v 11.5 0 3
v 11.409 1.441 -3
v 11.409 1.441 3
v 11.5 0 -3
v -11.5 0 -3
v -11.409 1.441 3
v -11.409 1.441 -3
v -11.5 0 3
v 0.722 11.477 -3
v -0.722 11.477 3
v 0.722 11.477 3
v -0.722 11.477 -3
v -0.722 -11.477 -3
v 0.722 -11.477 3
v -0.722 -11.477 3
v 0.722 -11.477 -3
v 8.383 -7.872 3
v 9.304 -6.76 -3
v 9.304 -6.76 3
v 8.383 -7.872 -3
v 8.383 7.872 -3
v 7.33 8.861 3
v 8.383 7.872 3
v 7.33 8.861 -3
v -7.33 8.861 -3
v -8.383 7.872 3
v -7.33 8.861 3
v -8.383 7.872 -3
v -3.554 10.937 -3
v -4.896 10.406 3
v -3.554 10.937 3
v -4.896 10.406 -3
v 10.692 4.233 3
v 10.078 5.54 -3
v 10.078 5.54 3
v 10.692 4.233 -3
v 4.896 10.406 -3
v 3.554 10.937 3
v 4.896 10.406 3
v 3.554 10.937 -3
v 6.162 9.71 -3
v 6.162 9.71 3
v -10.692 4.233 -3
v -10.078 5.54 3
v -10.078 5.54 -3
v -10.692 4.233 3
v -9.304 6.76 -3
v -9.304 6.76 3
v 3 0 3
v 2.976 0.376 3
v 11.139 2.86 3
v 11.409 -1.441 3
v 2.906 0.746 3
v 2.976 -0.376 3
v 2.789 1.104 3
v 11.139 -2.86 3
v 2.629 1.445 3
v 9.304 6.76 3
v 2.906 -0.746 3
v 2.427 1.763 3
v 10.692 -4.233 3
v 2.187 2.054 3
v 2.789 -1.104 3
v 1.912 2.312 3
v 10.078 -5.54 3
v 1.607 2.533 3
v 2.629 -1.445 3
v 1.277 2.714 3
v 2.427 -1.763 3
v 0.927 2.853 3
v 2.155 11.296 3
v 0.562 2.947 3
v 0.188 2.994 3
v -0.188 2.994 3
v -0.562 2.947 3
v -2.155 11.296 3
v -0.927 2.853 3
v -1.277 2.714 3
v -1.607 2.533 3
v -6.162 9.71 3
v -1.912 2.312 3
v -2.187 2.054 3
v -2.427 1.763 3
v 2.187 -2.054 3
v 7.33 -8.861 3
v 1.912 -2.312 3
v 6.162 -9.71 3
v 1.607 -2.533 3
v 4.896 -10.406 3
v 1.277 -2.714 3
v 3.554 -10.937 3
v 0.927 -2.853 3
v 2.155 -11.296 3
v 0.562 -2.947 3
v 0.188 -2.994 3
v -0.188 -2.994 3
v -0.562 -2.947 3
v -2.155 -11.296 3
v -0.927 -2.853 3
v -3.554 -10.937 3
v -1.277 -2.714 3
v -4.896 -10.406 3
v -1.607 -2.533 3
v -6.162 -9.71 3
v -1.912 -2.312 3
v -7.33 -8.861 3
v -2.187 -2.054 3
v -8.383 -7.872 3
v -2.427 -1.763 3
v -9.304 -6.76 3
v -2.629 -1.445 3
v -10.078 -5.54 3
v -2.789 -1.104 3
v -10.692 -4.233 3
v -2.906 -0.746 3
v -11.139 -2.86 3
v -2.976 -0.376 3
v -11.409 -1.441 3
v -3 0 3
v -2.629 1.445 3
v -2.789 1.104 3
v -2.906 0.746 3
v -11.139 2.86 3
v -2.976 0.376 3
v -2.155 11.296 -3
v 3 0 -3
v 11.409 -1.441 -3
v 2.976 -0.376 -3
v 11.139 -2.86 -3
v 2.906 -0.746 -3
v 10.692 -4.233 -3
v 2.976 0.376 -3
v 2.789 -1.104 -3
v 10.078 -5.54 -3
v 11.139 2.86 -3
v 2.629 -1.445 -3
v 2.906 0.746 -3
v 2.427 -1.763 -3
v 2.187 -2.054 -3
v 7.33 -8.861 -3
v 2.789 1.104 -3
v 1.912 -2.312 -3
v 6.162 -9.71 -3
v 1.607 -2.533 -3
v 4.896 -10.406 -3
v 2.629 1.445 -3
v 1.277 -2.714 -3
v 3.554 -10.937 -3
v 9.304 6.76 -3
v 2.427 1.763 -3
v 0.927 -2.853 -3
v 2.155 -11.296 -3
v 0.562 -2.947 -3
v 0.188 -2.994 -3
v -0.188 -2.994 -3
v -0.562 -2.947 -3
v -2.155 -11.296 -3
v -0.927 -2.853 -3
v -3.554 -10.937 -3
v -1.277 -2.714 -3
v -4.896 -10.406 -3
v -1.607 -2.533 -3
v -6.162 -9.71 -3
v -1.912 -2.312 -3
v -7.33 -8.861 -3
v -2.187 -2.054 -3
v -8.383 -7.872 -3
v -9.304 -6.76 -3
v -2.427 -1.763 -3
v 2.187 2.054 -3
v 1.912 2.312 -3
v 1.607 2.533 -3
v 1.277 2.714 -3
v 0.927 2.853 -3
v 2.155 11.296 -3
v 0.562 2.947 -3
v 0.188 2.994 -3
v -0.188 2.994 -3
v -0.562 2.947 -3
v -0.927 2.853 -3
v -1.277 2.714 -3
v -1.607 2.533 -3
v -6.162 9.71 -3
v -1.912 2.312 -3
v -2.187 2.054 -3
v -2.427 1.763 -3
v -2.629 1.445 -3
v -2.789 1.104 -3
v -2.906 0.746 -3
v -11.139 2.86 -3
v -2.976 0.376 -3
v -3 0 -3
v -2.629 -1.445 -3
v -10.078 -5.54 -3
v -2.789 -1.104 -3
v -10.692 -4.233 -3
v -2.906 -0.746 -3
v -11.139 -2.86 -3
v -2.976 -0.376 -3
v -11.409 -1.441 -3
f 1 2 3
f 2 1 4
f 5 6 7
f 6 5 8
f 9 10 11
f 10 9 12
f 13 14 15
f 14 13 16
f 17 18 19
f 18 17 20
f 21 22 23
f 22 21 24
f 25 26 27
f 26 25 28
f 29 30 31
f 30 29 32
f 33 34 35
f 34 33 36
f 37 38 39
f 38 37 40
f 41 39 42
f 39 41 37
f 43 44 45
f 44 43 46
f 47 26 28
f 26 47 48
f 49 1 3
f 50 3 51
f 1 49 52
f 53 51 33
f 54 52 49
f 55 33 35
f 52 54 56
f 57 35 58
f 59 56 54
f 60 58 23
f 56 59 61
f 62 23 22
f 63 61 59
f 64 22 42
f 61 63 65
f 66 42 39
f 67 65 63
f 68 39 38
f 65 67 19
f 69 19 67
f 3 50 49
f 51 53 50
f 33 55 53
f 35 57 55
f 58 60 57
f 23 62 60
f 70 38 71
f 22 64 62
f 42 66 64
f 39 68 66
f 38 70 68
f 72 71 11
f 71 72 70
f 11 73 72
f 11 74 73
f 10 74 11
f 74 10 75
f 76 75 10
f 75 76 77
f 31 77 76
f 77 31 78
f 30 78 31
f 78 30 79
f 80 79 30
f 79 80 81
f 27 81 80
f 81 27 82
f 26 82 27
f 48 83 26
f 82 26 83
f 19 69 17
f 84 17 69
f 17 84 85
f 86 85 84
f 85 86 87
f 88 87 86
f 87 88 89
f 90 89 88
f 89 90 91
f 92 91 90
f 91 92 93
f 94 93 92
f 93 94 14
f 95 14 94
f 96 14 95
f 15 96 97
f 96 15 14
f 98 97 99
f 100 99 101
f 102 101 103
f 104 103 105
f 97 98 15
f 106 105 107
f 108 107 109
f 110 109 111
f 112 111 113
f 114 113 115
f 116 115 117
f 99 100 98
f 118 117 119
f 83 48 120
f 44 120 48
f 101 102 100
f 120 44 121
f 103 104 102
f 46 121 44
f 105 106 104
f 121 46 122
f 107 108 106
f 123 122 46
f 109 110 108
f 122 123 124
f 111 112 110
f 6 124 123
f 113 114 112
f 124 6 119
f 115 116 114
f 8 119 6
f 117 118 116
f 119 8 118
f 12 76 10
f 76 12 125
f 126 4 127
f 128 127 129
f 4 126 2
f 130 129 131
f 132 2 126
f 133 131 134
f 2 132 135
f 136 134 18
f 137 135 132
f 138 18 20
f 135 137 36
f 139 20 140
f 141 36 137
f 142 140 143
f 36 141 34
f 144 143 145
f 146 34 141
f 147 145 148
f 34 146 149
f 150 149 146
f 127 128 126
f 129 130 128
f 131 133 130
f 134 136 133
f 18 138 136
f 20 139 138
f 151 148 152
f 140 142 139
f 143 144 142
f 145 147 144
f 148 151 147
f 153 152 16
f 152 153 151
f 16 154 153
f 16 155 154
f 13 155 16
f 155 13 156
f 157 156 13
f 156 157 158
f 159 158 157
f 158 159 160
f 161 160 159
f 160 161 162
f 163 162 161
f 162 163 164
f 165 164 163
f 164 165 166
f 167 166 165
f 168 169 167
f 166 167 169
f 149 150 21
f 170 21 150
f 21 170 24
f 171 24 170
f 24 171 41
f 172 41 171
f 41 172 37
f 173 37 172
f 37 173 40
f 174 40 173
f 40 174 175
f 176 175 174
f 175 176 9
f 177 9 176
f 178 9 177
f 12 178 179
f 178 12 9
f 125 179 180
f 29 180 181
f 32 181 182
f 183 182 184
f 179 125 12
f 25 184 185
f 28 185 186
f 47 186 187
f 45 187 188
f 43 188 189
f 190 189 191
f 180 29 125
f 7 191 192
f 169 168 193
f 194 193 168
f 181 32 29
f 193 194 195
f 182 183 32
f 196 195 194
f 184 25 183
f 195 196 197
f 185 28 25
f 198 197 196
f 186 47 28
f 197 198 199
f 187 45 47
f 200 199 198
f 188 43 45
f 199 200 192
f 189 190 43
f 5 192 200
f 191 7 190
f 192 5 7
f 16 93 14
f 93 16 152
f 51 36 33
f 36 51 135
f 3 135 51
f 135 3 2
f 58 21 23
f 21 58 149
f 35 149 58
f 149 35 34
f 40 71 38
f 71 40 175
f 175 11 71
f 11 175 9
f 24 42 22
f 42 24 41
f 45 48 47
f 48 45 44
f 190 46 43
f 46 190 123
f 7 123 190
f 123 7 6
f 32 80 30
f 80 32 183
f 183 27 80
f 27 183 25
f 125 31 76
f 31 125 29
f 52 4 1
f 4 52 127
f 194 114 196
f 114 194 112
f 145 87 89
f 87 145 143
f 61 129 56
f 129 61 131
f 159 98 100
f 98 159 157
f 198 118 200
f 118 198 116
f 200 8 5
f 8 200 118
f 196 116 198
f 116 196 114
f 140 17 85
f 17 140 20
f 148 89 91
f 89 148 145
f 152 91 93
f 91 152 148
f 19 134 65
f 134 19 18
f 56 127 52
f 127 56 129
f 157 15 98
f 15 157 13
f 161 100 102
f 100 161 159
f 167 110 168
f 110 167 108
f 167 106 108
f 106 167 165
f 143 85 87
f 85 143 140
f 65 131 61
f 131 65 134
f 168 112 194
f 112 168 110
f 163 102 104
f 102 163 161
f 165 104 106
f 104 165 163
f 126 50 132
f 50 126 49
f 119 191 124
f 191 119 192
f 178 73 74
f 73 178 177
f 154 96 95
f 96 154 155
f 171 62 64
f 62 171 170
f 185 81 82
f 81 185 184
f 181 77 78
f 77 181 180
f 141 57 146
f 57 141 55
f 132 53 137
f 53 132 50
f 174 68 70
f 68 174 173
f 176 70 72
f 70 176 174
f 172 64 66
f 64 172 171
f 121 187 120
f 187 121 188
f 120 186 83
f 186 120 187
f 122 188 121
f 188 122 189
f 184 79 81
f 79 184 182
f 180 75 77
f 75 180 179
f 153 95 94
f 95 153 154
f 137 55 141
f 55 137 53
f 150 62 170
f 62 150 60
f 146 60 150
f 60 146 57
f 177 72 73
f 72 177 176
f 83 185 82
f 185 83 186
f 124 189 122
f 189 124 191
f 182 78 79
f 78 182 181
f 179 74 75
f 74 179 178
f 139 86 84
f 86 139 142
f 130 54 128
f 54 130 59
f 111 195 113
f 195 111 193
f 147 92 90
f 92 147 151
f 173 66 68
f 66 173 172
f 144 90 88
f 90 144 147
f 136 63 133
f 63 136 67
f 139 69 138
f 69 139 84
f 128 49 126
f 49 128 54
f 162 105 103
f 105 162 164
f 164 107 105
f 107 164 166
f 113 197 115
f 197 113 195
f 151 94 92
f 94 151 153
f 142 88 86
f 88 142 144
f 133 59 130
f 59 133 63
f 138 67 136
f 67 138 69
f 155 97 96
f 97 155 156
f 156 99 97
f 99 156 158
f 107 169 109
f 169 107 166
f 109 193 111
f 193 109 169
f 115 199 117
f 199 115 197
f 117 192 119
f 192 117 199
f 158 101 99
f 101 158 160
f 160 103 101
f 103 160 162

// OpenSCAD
$fn = 50;


difference() {
	union() {
		translate(v = [0, 0, -3.0000000000]) {
			cylinder(h = 6, r = 11.5000000000);
		}
	}
	union() {
		translate(v = [0, 0, -100.0000000000]) {
			cylinder(h = 200, r = 3);
		}
	}
}
